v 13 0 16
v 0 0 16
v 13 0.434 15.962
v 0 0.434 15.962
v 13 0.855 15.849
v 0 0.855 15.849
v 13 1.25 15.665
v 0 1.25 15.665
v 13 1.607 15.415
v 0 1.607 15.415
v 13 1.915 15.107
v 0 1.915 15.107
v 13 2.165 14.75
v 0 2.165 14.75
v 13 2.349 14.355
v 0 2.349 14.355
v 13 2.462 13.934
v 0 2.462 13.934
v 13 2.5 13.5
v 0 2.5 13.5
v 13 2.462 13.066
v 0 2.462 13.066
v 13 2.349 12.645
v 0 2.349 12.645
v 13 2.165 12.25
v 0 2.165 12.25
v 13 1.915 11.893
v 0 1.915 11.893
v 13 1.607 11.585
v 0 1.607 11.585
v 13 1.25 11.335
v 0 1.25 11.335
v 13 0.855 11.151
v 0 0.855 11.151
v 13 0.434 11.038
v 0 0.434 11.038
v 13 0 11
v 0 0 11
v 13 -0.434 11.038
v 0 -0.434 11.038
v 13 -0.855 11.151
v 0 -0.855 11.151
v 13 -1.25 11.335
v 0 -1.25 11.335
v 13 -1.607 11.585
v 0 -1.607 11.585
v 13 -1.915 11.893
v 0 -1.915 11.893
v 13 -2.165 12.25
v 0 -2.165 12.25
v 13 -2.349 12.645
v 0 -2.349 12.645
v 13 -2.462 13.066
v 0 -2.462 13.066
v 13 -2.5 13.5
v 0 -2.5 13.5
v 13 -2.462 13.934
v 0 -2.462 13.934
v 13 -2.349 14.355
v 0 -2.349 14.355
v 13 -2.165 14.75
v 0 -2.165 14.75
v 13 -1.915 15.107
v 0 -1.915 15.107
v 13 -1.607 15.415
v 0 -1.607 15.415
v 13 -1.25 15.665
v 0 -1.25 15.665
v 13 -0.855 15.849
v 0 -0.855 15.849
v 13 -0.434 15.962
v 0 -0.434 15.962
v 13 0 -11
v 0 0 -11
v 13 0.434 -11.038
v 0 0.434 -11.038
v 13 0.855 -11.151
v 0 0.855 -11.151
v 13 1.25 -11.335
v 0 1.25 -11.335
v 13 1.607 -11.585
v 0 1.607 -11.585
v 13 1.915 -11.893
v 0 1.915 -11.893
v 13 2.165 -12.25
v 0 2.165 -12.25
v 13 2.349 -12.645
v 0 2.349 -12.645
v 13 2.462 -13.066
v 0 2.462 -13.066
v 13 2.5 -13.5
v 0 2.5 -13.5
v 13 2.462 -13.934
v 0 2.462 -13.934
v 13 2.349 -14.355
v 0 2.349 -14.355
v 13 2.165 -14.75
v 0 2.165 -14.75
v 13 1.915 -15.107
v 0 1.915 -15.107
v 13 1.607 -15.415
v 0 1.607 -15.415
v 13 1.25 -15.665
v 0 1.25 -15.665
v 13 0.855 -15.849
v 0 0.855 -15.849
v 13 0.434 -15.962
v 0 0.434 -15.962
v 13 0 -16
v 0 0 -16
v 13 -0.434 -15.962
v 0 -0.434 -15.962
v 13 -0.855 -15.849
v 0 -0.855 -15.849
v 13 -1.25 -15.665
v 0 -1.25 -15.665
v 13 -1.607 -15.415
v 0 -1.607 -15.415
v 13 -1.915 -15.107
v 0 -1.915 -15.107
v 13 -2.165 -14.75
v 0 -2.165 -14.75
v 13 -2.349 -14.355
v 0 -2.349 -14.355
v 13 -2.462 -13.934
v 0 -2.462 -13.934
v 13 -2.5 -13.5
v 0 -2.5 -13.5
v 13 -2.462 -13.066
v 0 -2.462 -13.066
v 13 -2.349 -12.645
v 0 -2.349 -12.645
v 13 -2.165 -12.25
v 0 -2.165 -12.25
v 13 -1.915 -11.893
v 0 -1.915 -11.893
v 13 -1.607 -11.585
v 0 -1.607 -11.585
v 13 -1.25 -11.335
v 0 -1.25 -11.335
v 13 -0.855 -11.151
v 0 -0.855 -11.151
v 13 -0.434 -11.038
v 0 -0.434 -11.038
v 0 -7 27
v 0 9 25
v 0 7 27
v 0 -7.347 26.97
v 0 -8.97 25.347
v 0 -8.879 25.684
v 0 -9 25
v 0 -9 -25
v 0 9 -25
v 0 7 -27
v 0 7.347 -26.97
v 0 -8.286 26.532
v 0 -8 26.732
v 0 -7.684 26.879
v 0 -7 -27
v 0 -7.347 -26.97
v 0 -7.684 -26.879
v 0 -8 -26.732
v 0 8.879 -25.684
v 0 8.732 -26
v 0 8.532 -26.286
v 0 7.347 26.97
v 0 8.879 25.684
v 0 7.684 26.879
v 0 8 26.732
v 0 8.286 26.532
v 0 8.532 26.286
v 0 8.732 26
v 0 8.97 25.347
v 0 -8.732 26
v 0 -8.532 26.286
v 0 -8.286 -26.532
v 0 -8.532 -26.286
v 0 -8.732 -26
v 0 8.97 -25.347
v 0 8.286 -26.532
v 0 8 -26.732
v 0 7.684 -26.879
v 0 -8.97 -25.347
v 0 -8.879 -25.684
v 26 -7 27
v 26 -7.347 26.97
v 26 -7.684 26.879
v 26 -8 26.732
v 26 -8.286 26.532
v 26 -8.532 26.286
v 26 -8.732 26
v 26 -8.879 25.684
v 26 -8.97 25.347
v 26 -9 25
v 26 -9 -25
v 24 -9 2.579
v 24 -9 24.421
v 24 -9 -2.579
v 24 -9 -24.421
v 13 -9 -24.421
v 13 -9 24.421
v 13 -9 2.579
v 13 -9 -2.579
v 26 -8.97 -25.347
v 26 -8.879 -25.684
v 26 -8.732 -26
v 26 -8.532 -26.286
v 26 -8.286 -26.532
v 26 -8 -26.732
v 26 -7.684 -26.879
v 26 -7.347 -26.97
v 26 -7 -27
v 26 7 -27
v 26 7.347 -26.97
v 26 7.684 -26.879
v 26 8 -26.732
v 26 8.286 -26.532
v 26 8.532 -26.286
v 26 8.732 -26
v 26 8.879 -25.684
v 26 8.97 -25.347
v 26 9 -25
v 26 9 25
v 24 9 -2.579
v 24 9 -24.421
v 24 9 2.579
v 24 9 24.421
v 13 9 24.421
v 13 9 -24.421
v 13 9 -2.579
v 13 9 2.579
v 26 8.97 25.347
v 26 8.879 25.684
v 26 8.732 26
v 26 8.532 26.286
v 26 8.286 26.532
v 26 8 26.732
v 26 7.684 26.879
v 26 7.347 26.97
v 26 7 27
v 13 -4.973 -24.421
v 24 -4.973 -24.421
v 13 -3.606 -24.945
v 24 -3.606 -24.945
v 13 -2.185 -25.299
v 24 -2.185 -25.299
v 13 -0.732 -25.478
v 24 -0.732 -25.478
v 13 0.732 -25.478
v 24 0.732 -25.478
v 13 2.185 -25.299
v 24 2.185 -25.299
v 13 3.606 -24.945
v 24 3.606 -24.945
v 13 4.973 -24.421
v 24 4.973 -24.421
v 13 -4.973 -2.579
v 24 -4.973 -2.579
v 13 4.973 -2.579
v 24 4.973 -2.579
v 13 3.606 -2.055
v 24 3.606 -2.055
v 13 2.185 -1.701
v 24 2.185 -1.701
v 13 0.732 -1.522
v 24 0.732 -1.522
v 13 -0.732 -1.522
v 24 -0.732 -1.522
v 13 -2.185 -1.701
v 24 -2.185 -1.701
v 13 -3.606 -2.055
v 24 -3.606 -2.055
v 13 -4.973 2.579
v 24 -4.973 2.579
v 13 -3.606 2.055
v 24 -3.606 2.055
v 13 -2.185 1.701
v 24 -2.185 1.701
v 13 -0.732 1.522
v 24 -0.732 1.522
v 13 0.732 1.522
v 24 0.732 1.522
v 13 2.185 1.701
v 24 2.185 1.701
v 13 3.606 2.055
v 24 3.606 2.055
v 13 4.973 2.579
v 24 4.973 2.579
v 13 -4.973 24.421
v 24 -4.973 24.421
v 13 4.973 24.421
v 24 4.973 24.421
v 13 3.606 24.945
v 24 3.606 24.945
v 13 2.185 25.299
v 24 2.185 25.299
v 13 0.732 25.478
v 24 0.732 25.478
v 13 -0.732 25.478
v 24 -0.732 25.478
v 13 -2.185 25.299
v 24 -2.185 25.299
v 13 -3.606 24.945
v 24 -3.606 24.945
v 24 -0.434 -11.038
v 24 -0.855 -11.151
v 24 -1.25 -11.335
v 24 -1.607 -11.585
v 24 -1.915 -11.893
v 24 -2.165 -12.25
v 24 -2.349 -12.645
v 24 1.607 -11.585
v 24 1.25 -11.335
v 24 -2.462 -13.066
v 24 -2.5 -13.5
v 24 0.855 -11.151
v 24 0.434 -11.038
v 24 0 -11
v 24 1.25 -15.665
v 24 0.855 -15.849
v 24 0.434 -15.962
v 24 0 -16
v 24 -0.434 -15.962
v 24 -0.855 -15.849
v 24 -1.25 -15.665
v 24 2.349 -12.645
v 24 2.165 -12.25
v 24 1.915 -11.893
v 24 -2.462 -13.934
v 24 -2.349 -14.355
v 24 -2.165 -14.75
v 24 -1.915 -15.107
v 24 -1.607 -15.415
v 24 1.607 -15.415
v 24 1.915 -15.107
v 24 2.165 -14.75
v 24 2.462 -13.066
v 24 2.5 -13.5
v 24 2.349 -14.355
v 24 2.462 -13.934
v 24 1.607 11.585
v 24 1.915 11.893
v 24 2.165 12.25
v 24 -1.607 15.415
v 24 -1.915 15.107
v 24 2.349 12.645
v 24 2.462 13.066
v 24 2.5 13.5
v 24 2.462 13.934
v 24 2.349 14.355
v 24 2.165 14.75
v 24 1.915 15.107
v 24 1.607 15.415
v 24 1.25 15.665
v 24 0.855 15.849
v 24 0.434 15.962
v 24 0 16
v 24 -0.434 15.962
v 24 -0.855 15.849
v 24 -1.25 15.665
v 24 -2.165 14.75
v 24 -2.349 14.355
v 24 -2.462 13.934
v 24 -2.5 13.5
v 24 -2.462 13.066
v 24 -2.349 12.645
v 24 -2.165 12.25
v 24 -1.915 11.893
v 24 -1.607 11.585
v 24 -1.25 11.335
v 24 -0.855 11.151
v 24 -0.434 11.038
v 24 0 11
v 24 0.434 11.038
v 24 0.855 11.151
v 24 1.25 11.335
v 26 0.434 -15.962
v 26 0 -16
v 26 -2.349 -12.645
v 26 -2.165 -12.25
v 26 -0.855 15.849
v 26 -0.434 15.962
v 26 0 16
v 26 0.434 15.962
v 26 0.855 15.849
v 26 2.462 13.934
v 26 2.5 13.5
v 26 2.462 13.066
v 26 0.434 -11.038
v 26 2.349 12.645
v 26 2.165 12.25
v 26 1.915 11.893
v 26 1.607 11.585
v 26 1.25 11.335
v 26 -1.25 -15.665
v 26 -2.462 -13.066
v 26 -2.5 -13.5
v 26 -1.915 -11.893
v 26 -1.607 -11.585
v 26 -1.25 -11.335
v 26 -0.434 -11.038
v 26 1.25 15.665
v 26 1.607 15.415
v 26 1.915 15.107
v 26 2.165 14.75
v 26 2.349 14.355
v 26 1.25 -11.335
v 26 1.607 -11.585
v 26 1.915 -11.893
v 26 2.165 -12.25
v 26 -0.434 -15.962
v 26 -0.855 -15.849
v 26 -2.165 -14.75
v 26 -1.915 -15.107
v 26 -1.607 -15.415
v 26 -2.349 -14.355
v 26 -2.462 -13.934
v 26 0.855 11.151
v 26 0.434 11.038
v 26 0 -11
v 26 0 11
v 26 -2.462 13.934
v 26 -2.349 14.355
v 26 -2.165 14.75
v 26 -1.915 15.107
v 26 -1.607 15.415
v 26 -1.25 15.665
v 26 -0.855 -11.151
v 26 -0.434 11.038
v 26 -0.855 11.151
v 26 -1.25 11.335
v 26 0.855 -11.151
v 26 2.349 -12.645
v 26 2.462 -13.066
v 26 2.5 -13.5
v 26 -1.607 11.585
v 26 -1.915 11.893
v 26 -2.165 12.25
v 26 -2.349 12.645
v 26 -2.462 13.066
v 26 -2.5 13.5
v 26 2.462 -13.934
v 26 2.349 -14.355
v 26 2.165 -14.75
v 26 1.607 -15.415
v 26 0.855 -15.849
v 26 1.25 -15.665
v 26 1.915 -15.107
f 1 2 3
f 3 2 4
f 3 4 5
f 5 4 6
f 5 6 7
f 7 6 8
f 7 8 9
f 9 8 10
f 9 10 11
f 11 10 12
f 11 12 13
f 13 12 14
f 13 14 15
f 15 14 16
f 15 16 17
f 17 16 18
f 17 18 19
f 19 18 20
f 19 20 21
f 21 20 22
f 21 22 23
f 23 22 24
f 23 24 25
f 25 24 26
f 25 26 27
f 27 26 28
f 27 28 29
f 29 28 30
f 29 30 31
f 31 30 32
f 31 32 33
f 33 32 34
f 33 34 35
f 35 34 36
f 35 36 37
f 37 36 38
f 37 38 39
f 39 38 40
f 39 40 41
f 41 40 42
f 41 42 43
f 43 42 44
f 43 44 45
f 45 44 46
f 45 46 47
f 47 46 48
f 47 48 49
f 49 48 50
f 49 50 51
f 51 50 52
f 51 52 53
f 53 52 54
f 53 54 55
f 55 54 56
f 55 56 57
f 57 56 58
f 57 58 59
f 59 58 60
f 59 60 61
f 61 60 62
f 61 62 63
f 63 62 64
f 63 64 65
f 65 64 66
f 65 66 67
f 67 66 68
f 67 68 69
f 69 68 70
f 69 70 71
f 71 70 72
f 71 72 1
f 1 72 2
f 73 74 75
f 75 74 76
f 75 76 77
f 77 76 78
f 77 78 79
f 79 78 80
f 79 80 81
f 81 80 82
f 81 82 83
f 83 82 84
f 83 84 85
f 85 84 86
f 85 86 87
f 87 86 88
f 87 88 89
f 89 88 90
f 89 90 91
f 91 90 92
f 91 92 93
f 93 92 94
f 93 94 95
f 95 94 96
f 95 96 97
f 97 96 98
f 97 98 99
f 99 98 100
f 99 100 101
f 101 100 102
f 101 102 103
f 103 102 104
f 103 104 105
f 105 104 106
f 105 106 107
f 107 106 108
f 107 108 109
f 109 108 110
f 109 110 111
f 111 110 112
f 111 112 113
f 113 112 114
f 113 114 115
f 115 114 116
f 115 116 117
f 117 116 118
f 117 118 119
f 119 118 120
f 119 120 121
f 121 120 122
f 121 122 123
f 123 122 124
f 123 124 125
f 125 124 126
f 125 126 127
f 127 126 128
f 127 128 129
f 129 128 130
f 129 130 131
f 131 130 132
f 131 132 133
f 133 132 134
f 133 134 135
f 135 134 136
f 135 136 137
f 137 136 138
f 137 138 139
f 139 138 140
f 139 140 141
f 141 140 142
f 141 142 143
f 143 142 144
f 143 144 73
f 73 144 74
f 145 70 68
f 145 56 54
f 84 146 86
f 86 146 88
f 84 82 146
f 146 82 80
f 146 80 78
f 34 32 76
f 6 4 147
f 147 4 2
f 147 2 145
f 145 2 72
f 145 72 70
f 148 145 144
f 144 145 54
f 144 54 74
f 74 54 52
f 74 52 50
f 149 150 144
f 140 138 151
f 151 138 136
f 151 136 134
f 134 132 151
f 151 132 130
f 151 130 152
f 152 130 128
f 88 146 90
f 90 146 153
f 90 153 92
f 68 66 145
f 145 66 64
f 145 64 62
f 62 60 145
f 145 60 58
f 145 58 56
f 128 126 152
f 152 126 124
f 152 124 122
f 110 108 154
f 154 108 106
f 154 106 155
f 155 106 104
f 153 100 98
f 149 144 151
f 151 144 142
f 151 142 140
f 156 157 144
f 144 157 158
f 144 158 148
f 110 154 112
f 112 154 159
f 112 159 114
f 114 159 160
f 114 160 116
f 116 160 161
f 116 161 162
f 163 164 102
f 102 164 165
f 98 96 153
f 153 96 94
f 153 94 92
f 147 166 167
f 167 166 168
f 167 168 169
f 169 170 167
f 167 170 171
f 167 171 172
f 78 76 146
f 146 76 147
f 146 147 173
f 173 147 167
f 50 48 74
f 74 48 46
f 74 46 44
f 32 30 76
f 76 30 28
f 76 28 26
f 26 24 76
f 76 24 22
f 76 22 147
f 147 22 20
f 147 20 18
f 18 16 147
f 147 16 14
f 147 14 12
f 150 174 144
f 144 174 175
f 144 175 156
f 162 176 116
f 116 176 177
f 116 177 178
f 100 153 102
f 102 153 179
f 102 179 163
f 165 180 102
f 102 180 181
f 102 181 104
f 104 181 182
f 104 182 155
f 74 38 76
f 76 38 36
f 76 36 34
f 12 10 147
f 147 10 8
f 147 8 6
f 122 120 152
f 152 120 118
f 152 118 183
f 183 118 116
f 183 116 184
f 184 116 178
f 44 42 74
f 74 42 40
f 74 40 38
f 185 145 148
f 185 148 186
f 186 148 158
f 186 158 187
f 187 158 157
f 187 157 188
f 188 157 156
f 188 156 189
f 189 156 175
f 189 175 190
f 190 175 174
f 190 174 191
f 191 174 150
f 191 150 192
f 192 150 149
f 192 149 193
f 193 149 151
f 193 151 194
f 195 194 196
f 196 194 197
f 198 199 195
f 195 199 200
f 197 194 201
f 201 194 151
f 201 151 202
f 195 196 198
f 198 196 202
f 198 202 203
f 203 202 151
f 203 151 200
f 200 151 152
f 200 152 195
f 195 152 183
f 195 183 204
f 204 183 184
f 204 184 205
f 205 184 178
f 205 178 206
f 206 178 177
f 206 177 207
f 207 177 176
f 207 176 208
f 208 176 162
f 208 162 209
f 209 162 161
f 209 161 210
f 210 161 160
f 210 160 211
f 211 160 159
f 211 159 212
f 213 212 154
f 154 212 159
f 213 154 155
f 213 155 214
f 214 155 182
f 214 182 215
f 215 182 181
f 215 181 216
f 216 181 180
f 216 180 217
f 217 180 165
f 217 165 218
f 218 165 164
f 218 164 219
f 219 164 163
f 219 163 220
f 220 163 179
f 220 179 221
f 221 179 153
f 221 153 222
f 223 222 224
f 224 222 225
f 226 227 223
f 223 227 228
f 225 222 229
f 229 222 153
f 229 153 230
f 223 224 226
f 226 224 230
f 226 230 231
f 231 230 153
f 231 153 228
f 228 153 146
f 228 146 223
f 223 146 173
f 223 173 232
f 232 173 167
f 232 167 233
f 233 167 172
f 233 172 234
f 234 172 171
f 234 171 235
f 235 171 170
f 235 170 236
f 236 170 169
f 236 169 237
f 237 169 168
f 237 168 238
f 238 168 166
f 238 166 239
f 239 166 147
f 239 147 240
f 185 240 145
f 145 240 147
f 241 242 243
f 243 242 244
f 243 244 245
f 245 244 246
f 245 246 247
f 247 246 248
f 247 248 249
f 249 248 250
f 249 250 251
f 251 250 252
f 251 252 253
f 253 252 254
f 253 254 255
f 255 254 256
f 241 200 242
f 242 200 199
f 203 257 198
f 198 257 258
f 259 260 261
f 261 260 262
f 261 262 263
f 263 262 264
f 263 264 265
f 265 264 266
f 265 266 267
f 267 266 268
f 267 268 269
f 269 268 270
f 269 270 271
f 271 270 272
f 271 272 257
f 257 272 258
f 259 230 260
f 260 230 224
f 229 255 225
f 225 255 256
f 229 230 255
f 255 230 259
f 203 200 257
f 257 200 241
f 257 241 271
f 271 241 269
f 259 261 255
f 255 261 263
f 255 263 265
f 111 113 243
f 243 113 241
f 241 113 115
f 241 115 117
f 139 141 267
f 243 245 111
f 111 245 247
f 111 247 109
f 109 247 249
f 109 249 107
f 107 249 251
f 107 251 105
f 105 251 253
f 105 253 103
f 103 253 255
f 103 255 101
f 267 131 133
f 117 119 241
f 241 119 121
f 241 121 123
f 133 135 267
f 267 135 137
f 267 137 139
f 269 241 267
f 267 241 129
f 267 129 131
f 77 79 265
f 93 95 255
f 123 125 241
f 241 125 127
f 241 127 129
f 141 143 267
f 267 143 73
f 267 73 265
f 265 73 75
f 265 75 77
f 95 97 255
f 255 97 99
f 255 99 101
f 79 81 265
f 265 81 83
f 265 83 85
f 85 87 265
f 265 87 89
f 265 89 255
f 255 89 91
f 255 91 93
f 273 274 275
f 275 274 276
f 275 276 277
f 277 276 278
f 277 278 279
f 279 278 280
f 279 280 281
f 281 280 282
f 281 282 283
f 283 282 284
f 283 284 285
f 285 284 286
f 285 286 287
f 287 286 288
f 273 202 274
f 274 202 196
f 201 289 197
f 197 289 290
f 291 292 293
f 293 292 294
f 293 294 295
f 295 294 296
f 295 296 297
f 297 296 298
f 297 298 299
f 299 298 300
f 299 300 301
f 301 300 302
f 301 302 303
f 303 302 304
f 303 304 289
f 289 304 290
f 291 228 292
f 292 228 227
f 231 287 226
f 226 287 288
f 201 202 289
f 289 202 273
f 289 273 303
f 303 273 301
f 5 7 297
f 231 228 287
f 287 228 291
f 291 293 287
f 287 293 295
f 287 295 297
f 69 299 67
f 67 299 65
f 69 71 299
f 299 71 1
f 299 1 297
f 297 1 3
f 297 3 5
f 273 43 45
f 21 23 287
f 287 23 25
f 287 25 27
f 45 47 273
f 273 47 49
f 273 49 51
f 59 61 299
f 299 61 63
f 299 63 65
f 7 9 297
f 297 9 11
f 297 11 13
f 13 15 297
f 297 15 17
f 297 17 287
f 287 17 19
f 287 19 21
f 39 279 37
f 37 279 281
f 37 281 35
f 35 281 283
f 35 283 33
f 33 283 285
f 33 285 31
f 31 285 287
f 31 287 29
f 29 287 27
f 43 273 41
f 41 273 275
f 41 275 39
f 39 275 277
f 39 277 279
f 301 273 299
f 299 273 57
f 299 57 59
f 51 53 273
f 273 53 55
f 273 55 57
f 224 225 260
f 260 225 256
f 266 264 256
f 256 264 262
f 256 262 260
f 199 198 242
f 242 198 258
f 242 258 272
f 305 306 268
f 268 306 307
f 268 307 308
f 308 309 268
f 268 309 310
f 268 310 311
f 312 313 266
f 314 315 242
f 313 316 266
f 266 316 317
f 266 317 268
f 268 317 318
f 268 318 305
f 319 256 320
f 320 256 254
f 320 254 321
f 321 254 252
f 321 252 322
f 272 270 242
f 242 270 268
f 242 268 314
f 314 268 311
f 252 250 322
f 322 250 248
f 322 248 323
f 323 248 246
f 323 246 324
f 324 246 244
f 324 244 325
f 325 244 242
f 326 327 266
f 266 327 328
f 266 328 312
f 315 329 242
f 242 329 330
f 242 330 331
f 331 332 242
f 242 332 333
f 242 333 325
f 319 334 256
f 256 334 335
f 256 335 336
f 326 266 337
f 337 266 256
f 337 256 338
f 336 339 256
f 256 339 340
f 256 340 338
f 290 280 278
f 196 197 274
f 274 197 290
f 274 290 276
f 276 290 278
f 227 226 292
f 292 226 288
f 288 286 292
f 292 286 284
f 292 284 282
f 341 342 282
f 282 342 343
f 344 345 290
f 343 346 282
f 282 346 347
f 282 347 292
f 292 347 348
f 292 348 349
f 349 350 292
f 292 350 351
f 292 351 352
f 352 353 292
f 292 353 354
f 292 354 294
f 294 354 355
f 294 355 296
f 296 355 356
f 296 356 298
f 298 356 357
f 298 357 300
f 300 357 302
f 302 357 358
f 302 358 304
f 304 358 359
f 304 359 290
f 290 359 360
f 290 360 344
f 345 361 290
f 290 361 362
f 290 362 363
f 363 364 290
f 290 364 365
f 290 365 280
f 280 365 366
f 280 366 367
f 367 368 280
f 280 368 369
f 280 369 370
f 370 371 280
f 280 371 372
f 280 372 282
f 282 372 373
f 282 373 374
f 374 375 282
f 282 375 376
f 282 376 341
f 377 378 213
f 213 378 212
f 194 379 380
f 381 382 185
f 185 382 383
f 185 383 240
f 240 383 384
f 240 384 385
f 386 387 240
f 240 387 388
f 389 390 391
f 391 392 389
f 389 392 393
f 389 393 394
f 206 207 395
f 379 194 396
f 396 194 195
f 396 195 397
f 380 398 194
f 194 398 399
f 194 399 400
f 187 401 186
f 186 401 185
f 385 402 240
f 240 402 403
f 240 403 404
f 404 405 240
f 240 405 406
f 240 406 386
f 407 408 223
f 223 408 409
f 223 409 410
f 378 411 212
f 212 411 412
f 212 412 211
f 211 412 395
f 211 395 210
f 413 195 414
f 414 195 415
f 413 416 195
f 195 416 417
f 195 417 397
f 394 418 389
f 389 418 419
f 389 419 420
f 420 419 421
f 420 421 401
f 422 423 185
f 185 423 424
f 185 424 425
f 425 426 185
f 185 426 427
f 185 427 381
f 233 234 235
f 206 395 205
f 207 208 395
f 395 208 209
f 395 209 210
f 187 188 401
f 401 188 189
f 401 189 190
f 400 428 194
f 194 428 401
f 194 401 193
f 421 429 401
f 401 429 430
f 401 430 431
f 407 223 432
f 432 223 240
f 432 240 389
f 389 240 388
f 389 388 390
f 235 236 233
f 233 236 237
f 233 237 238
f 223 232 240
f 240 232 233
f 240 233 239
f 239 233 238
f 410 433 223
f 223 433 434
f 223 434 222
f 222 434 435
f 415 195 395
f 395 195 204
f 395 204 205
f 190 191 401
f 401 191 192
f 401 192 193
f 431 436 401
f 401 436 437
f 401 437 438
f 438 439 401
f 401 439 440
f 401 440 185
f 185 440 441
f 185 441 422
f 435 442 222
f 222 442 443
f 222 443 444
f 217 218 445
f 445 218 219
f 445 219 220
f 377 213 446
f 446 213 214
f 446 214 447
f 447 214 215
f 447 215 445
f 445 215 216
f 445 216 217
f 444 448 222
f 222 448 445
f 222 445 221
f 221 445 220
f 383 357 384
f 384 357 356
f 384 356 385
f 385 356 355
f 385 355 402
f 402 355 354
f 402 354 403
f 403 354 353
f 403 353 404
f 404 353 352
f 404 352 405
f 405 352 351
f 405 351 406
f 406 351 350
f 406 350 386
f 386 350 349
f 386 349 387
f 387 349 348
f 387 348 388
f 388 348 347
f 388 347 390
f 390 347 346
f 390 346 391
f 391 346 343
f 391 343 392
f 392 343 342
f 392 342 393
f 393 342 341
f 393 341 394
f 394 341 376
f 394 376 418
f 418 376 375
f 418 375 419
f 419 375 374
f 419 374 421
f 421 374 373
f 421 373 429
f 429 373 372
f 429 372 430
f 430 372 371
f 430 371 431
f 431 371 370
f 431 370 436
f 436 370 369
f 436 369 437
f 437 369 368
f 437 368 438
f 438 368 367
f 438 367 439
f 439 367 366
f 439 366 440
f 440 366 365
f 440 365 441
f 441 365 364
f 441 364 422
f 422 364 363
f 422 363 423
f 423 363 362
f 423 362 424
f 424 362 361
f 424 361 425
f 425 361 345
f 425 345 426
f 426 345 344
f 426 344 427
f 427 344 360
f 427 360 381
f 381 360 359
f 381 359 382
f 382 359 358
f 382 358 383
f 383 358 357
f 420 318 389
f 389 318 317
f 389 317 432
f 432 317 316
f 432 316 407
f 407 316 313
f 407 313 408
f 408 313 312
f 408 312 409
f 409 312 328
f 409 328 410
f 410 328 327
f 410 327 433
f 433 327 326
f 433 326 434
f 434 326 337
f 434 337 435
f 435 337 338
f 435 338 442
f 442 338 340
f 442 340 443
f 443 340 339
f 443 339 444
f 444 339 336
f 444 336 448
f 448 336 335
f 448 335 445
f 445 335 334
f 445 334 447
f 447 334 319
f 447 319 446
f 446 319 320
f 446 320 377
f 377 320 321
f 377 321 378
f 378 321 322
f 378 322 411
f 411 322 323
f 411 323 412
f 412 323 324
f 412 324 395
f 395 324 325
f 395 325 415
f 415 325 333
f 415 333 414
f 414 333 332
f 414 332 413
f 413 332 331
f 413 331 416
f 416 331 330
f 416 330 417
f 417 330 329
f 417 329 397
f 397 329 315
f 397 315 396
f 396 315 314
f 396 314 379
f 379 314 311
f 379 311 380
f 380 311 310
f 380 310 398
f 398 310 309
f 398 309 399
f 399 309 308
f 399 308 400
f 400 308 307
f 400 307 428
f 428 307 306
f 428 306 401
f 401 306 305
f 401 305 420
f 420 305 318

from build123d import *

# Parameters (mm, degrees)
SKETCH_1_R          = 2.5
EXTRUDE_1_DEPTH     = 24
CUT_EXTRUDE_1_DEPTH = 11
SKETCH_3_R          = 2.5
EXTRUDE_2_DEPTH     = 2


with BuildPart() as part:
    # Эскиз1 → Бобышка-Вытянуть1 (new body)
    with BuildSketch(Plane(origin=(0, 0, 0), x_dir=(0, 0, -1), z_dir=(1, 0, 0))):
        with BuildLine():
            Line((-25, 9), (25, 9))
            ThreePointArc((25, 9), (26.414213562, 8.414213562), (27, 7))
            Line((27, 7), (27, -7))
            ThreePointArc((27, -7), (26.414213562, -8.414213562), (25, -9))
            Line((25, -9), (-25, -9))
            ThreePointArc((-25, -9), (-26.414213562, -8.414213562), (-27, -7))
            Line((-27, -7), (-27, 7))
            ThreePointArc((-27, 7), (-26.414213562, 8.414213562), (-25, 9))
        make_face()
        with Locations((-13.5, 0)):
            Circle(SKETCH_1_R, mode=Mode.SUBTRACT)
        with Locations((13.5, 0)):
            Circle(SKETCH_1_R, mode=Mode.SUBTRACT)
    extrude(amount=EXTRUDE_1_DEPTH)

    # Эскиз2 → Вырез-Вытянуть1 (cut)
    with BuildSketch(Plane(origin=(24, 0, 0), x_dir=(0, 0, -1), z_dir=(1, 0, 0))):
        with BuildLine():
            Line((-24.420860707, 9), (-24.420860707, 4.973409436))
            ThreePointArc((-24.420860707, 4.973409436), (-25.5, 0), (-24.420860707, -4.973409436))
            Line((-24.420860707, -4.973409436), (-24.420860707, -9))
            Line((-24.420860707, -9), (-2.579139293, -9))
            Line((-2.579139293, -9), (-2.579139293, -4.973409436))
            ThreePointArc((-2.579139293, -4.973409436), (-1.5, 0), (-2.579139293, 4.973409436))
            Line((-2.579139293, 4.973409436), (-2.579139293, 9))
            Line((-2.579139293, 9), (-24.420860707, 9))
        make_face()
        with BuildLine():
            Line((24.420860707, -4.973409436), (24.420860707, -9))
            Line((24.420860707, -9), (2.579139293, -9))
            Line((2.579139293, -9), (2.579139293, -4.973409436))
            ThreePointArc((2.579139293, -4.973409436), (1.5, 0), (2.579139293, 4.973409436))
            Line((2.579139293, 4.973409436), (2.579139293, 9))
            Line((2.579139293, 9), (24.420860707, 9))
            Line((24.420860707, 9), (24.420860707, 4.973409436))
            ThreePointArc((24.420860707, 4.973409436), (25.5, 0), (24.420860707, -4.973409436))
        make_face()
    extrude(amount=-CUT_EXTRUDE_1_DEPTH, mode=Mode.SUBTRACT)

    # Эскиз3 → Бобышка-Вытянуть2 (add)
    with BuildSketch(Plane(origin=(24, 0, 0), x_dir=(0, 0, -1), z_dir=(1, 0, 0))):
        with BuildLine():
            Line((-25, 9), (25, 9))
            ThreePointArc((25, 9), (26.414213562, 8.414213562), (27, 7))
            Line((27, 7), (27, -7))
            ThreePointArc((27, -7), (26.414213562, -8.414213562), (25, -9))
            Line((25, -9), (-25, -9))
            ThreePointArc((-25, -9), (-26.414213562, -8.414213562), (-27, -7))
            Line((-27, -7), (-27, 7))
            ThreePointArc((-27, 7), (-26.414213562, 8.414213562), (-25, 9))
        make_face()
        with Locations((-13.5, 0)):
            Circle(SKETCH_3_R, mode=Mode.SUBTRACT)
        with Locations((13.5, 0)):
            Circle(SKETCH_3_R, mode=Mode.SUBTRACT)
    extrude(amount=EXTRUDE_2_DEPTH)


solid = part.part
